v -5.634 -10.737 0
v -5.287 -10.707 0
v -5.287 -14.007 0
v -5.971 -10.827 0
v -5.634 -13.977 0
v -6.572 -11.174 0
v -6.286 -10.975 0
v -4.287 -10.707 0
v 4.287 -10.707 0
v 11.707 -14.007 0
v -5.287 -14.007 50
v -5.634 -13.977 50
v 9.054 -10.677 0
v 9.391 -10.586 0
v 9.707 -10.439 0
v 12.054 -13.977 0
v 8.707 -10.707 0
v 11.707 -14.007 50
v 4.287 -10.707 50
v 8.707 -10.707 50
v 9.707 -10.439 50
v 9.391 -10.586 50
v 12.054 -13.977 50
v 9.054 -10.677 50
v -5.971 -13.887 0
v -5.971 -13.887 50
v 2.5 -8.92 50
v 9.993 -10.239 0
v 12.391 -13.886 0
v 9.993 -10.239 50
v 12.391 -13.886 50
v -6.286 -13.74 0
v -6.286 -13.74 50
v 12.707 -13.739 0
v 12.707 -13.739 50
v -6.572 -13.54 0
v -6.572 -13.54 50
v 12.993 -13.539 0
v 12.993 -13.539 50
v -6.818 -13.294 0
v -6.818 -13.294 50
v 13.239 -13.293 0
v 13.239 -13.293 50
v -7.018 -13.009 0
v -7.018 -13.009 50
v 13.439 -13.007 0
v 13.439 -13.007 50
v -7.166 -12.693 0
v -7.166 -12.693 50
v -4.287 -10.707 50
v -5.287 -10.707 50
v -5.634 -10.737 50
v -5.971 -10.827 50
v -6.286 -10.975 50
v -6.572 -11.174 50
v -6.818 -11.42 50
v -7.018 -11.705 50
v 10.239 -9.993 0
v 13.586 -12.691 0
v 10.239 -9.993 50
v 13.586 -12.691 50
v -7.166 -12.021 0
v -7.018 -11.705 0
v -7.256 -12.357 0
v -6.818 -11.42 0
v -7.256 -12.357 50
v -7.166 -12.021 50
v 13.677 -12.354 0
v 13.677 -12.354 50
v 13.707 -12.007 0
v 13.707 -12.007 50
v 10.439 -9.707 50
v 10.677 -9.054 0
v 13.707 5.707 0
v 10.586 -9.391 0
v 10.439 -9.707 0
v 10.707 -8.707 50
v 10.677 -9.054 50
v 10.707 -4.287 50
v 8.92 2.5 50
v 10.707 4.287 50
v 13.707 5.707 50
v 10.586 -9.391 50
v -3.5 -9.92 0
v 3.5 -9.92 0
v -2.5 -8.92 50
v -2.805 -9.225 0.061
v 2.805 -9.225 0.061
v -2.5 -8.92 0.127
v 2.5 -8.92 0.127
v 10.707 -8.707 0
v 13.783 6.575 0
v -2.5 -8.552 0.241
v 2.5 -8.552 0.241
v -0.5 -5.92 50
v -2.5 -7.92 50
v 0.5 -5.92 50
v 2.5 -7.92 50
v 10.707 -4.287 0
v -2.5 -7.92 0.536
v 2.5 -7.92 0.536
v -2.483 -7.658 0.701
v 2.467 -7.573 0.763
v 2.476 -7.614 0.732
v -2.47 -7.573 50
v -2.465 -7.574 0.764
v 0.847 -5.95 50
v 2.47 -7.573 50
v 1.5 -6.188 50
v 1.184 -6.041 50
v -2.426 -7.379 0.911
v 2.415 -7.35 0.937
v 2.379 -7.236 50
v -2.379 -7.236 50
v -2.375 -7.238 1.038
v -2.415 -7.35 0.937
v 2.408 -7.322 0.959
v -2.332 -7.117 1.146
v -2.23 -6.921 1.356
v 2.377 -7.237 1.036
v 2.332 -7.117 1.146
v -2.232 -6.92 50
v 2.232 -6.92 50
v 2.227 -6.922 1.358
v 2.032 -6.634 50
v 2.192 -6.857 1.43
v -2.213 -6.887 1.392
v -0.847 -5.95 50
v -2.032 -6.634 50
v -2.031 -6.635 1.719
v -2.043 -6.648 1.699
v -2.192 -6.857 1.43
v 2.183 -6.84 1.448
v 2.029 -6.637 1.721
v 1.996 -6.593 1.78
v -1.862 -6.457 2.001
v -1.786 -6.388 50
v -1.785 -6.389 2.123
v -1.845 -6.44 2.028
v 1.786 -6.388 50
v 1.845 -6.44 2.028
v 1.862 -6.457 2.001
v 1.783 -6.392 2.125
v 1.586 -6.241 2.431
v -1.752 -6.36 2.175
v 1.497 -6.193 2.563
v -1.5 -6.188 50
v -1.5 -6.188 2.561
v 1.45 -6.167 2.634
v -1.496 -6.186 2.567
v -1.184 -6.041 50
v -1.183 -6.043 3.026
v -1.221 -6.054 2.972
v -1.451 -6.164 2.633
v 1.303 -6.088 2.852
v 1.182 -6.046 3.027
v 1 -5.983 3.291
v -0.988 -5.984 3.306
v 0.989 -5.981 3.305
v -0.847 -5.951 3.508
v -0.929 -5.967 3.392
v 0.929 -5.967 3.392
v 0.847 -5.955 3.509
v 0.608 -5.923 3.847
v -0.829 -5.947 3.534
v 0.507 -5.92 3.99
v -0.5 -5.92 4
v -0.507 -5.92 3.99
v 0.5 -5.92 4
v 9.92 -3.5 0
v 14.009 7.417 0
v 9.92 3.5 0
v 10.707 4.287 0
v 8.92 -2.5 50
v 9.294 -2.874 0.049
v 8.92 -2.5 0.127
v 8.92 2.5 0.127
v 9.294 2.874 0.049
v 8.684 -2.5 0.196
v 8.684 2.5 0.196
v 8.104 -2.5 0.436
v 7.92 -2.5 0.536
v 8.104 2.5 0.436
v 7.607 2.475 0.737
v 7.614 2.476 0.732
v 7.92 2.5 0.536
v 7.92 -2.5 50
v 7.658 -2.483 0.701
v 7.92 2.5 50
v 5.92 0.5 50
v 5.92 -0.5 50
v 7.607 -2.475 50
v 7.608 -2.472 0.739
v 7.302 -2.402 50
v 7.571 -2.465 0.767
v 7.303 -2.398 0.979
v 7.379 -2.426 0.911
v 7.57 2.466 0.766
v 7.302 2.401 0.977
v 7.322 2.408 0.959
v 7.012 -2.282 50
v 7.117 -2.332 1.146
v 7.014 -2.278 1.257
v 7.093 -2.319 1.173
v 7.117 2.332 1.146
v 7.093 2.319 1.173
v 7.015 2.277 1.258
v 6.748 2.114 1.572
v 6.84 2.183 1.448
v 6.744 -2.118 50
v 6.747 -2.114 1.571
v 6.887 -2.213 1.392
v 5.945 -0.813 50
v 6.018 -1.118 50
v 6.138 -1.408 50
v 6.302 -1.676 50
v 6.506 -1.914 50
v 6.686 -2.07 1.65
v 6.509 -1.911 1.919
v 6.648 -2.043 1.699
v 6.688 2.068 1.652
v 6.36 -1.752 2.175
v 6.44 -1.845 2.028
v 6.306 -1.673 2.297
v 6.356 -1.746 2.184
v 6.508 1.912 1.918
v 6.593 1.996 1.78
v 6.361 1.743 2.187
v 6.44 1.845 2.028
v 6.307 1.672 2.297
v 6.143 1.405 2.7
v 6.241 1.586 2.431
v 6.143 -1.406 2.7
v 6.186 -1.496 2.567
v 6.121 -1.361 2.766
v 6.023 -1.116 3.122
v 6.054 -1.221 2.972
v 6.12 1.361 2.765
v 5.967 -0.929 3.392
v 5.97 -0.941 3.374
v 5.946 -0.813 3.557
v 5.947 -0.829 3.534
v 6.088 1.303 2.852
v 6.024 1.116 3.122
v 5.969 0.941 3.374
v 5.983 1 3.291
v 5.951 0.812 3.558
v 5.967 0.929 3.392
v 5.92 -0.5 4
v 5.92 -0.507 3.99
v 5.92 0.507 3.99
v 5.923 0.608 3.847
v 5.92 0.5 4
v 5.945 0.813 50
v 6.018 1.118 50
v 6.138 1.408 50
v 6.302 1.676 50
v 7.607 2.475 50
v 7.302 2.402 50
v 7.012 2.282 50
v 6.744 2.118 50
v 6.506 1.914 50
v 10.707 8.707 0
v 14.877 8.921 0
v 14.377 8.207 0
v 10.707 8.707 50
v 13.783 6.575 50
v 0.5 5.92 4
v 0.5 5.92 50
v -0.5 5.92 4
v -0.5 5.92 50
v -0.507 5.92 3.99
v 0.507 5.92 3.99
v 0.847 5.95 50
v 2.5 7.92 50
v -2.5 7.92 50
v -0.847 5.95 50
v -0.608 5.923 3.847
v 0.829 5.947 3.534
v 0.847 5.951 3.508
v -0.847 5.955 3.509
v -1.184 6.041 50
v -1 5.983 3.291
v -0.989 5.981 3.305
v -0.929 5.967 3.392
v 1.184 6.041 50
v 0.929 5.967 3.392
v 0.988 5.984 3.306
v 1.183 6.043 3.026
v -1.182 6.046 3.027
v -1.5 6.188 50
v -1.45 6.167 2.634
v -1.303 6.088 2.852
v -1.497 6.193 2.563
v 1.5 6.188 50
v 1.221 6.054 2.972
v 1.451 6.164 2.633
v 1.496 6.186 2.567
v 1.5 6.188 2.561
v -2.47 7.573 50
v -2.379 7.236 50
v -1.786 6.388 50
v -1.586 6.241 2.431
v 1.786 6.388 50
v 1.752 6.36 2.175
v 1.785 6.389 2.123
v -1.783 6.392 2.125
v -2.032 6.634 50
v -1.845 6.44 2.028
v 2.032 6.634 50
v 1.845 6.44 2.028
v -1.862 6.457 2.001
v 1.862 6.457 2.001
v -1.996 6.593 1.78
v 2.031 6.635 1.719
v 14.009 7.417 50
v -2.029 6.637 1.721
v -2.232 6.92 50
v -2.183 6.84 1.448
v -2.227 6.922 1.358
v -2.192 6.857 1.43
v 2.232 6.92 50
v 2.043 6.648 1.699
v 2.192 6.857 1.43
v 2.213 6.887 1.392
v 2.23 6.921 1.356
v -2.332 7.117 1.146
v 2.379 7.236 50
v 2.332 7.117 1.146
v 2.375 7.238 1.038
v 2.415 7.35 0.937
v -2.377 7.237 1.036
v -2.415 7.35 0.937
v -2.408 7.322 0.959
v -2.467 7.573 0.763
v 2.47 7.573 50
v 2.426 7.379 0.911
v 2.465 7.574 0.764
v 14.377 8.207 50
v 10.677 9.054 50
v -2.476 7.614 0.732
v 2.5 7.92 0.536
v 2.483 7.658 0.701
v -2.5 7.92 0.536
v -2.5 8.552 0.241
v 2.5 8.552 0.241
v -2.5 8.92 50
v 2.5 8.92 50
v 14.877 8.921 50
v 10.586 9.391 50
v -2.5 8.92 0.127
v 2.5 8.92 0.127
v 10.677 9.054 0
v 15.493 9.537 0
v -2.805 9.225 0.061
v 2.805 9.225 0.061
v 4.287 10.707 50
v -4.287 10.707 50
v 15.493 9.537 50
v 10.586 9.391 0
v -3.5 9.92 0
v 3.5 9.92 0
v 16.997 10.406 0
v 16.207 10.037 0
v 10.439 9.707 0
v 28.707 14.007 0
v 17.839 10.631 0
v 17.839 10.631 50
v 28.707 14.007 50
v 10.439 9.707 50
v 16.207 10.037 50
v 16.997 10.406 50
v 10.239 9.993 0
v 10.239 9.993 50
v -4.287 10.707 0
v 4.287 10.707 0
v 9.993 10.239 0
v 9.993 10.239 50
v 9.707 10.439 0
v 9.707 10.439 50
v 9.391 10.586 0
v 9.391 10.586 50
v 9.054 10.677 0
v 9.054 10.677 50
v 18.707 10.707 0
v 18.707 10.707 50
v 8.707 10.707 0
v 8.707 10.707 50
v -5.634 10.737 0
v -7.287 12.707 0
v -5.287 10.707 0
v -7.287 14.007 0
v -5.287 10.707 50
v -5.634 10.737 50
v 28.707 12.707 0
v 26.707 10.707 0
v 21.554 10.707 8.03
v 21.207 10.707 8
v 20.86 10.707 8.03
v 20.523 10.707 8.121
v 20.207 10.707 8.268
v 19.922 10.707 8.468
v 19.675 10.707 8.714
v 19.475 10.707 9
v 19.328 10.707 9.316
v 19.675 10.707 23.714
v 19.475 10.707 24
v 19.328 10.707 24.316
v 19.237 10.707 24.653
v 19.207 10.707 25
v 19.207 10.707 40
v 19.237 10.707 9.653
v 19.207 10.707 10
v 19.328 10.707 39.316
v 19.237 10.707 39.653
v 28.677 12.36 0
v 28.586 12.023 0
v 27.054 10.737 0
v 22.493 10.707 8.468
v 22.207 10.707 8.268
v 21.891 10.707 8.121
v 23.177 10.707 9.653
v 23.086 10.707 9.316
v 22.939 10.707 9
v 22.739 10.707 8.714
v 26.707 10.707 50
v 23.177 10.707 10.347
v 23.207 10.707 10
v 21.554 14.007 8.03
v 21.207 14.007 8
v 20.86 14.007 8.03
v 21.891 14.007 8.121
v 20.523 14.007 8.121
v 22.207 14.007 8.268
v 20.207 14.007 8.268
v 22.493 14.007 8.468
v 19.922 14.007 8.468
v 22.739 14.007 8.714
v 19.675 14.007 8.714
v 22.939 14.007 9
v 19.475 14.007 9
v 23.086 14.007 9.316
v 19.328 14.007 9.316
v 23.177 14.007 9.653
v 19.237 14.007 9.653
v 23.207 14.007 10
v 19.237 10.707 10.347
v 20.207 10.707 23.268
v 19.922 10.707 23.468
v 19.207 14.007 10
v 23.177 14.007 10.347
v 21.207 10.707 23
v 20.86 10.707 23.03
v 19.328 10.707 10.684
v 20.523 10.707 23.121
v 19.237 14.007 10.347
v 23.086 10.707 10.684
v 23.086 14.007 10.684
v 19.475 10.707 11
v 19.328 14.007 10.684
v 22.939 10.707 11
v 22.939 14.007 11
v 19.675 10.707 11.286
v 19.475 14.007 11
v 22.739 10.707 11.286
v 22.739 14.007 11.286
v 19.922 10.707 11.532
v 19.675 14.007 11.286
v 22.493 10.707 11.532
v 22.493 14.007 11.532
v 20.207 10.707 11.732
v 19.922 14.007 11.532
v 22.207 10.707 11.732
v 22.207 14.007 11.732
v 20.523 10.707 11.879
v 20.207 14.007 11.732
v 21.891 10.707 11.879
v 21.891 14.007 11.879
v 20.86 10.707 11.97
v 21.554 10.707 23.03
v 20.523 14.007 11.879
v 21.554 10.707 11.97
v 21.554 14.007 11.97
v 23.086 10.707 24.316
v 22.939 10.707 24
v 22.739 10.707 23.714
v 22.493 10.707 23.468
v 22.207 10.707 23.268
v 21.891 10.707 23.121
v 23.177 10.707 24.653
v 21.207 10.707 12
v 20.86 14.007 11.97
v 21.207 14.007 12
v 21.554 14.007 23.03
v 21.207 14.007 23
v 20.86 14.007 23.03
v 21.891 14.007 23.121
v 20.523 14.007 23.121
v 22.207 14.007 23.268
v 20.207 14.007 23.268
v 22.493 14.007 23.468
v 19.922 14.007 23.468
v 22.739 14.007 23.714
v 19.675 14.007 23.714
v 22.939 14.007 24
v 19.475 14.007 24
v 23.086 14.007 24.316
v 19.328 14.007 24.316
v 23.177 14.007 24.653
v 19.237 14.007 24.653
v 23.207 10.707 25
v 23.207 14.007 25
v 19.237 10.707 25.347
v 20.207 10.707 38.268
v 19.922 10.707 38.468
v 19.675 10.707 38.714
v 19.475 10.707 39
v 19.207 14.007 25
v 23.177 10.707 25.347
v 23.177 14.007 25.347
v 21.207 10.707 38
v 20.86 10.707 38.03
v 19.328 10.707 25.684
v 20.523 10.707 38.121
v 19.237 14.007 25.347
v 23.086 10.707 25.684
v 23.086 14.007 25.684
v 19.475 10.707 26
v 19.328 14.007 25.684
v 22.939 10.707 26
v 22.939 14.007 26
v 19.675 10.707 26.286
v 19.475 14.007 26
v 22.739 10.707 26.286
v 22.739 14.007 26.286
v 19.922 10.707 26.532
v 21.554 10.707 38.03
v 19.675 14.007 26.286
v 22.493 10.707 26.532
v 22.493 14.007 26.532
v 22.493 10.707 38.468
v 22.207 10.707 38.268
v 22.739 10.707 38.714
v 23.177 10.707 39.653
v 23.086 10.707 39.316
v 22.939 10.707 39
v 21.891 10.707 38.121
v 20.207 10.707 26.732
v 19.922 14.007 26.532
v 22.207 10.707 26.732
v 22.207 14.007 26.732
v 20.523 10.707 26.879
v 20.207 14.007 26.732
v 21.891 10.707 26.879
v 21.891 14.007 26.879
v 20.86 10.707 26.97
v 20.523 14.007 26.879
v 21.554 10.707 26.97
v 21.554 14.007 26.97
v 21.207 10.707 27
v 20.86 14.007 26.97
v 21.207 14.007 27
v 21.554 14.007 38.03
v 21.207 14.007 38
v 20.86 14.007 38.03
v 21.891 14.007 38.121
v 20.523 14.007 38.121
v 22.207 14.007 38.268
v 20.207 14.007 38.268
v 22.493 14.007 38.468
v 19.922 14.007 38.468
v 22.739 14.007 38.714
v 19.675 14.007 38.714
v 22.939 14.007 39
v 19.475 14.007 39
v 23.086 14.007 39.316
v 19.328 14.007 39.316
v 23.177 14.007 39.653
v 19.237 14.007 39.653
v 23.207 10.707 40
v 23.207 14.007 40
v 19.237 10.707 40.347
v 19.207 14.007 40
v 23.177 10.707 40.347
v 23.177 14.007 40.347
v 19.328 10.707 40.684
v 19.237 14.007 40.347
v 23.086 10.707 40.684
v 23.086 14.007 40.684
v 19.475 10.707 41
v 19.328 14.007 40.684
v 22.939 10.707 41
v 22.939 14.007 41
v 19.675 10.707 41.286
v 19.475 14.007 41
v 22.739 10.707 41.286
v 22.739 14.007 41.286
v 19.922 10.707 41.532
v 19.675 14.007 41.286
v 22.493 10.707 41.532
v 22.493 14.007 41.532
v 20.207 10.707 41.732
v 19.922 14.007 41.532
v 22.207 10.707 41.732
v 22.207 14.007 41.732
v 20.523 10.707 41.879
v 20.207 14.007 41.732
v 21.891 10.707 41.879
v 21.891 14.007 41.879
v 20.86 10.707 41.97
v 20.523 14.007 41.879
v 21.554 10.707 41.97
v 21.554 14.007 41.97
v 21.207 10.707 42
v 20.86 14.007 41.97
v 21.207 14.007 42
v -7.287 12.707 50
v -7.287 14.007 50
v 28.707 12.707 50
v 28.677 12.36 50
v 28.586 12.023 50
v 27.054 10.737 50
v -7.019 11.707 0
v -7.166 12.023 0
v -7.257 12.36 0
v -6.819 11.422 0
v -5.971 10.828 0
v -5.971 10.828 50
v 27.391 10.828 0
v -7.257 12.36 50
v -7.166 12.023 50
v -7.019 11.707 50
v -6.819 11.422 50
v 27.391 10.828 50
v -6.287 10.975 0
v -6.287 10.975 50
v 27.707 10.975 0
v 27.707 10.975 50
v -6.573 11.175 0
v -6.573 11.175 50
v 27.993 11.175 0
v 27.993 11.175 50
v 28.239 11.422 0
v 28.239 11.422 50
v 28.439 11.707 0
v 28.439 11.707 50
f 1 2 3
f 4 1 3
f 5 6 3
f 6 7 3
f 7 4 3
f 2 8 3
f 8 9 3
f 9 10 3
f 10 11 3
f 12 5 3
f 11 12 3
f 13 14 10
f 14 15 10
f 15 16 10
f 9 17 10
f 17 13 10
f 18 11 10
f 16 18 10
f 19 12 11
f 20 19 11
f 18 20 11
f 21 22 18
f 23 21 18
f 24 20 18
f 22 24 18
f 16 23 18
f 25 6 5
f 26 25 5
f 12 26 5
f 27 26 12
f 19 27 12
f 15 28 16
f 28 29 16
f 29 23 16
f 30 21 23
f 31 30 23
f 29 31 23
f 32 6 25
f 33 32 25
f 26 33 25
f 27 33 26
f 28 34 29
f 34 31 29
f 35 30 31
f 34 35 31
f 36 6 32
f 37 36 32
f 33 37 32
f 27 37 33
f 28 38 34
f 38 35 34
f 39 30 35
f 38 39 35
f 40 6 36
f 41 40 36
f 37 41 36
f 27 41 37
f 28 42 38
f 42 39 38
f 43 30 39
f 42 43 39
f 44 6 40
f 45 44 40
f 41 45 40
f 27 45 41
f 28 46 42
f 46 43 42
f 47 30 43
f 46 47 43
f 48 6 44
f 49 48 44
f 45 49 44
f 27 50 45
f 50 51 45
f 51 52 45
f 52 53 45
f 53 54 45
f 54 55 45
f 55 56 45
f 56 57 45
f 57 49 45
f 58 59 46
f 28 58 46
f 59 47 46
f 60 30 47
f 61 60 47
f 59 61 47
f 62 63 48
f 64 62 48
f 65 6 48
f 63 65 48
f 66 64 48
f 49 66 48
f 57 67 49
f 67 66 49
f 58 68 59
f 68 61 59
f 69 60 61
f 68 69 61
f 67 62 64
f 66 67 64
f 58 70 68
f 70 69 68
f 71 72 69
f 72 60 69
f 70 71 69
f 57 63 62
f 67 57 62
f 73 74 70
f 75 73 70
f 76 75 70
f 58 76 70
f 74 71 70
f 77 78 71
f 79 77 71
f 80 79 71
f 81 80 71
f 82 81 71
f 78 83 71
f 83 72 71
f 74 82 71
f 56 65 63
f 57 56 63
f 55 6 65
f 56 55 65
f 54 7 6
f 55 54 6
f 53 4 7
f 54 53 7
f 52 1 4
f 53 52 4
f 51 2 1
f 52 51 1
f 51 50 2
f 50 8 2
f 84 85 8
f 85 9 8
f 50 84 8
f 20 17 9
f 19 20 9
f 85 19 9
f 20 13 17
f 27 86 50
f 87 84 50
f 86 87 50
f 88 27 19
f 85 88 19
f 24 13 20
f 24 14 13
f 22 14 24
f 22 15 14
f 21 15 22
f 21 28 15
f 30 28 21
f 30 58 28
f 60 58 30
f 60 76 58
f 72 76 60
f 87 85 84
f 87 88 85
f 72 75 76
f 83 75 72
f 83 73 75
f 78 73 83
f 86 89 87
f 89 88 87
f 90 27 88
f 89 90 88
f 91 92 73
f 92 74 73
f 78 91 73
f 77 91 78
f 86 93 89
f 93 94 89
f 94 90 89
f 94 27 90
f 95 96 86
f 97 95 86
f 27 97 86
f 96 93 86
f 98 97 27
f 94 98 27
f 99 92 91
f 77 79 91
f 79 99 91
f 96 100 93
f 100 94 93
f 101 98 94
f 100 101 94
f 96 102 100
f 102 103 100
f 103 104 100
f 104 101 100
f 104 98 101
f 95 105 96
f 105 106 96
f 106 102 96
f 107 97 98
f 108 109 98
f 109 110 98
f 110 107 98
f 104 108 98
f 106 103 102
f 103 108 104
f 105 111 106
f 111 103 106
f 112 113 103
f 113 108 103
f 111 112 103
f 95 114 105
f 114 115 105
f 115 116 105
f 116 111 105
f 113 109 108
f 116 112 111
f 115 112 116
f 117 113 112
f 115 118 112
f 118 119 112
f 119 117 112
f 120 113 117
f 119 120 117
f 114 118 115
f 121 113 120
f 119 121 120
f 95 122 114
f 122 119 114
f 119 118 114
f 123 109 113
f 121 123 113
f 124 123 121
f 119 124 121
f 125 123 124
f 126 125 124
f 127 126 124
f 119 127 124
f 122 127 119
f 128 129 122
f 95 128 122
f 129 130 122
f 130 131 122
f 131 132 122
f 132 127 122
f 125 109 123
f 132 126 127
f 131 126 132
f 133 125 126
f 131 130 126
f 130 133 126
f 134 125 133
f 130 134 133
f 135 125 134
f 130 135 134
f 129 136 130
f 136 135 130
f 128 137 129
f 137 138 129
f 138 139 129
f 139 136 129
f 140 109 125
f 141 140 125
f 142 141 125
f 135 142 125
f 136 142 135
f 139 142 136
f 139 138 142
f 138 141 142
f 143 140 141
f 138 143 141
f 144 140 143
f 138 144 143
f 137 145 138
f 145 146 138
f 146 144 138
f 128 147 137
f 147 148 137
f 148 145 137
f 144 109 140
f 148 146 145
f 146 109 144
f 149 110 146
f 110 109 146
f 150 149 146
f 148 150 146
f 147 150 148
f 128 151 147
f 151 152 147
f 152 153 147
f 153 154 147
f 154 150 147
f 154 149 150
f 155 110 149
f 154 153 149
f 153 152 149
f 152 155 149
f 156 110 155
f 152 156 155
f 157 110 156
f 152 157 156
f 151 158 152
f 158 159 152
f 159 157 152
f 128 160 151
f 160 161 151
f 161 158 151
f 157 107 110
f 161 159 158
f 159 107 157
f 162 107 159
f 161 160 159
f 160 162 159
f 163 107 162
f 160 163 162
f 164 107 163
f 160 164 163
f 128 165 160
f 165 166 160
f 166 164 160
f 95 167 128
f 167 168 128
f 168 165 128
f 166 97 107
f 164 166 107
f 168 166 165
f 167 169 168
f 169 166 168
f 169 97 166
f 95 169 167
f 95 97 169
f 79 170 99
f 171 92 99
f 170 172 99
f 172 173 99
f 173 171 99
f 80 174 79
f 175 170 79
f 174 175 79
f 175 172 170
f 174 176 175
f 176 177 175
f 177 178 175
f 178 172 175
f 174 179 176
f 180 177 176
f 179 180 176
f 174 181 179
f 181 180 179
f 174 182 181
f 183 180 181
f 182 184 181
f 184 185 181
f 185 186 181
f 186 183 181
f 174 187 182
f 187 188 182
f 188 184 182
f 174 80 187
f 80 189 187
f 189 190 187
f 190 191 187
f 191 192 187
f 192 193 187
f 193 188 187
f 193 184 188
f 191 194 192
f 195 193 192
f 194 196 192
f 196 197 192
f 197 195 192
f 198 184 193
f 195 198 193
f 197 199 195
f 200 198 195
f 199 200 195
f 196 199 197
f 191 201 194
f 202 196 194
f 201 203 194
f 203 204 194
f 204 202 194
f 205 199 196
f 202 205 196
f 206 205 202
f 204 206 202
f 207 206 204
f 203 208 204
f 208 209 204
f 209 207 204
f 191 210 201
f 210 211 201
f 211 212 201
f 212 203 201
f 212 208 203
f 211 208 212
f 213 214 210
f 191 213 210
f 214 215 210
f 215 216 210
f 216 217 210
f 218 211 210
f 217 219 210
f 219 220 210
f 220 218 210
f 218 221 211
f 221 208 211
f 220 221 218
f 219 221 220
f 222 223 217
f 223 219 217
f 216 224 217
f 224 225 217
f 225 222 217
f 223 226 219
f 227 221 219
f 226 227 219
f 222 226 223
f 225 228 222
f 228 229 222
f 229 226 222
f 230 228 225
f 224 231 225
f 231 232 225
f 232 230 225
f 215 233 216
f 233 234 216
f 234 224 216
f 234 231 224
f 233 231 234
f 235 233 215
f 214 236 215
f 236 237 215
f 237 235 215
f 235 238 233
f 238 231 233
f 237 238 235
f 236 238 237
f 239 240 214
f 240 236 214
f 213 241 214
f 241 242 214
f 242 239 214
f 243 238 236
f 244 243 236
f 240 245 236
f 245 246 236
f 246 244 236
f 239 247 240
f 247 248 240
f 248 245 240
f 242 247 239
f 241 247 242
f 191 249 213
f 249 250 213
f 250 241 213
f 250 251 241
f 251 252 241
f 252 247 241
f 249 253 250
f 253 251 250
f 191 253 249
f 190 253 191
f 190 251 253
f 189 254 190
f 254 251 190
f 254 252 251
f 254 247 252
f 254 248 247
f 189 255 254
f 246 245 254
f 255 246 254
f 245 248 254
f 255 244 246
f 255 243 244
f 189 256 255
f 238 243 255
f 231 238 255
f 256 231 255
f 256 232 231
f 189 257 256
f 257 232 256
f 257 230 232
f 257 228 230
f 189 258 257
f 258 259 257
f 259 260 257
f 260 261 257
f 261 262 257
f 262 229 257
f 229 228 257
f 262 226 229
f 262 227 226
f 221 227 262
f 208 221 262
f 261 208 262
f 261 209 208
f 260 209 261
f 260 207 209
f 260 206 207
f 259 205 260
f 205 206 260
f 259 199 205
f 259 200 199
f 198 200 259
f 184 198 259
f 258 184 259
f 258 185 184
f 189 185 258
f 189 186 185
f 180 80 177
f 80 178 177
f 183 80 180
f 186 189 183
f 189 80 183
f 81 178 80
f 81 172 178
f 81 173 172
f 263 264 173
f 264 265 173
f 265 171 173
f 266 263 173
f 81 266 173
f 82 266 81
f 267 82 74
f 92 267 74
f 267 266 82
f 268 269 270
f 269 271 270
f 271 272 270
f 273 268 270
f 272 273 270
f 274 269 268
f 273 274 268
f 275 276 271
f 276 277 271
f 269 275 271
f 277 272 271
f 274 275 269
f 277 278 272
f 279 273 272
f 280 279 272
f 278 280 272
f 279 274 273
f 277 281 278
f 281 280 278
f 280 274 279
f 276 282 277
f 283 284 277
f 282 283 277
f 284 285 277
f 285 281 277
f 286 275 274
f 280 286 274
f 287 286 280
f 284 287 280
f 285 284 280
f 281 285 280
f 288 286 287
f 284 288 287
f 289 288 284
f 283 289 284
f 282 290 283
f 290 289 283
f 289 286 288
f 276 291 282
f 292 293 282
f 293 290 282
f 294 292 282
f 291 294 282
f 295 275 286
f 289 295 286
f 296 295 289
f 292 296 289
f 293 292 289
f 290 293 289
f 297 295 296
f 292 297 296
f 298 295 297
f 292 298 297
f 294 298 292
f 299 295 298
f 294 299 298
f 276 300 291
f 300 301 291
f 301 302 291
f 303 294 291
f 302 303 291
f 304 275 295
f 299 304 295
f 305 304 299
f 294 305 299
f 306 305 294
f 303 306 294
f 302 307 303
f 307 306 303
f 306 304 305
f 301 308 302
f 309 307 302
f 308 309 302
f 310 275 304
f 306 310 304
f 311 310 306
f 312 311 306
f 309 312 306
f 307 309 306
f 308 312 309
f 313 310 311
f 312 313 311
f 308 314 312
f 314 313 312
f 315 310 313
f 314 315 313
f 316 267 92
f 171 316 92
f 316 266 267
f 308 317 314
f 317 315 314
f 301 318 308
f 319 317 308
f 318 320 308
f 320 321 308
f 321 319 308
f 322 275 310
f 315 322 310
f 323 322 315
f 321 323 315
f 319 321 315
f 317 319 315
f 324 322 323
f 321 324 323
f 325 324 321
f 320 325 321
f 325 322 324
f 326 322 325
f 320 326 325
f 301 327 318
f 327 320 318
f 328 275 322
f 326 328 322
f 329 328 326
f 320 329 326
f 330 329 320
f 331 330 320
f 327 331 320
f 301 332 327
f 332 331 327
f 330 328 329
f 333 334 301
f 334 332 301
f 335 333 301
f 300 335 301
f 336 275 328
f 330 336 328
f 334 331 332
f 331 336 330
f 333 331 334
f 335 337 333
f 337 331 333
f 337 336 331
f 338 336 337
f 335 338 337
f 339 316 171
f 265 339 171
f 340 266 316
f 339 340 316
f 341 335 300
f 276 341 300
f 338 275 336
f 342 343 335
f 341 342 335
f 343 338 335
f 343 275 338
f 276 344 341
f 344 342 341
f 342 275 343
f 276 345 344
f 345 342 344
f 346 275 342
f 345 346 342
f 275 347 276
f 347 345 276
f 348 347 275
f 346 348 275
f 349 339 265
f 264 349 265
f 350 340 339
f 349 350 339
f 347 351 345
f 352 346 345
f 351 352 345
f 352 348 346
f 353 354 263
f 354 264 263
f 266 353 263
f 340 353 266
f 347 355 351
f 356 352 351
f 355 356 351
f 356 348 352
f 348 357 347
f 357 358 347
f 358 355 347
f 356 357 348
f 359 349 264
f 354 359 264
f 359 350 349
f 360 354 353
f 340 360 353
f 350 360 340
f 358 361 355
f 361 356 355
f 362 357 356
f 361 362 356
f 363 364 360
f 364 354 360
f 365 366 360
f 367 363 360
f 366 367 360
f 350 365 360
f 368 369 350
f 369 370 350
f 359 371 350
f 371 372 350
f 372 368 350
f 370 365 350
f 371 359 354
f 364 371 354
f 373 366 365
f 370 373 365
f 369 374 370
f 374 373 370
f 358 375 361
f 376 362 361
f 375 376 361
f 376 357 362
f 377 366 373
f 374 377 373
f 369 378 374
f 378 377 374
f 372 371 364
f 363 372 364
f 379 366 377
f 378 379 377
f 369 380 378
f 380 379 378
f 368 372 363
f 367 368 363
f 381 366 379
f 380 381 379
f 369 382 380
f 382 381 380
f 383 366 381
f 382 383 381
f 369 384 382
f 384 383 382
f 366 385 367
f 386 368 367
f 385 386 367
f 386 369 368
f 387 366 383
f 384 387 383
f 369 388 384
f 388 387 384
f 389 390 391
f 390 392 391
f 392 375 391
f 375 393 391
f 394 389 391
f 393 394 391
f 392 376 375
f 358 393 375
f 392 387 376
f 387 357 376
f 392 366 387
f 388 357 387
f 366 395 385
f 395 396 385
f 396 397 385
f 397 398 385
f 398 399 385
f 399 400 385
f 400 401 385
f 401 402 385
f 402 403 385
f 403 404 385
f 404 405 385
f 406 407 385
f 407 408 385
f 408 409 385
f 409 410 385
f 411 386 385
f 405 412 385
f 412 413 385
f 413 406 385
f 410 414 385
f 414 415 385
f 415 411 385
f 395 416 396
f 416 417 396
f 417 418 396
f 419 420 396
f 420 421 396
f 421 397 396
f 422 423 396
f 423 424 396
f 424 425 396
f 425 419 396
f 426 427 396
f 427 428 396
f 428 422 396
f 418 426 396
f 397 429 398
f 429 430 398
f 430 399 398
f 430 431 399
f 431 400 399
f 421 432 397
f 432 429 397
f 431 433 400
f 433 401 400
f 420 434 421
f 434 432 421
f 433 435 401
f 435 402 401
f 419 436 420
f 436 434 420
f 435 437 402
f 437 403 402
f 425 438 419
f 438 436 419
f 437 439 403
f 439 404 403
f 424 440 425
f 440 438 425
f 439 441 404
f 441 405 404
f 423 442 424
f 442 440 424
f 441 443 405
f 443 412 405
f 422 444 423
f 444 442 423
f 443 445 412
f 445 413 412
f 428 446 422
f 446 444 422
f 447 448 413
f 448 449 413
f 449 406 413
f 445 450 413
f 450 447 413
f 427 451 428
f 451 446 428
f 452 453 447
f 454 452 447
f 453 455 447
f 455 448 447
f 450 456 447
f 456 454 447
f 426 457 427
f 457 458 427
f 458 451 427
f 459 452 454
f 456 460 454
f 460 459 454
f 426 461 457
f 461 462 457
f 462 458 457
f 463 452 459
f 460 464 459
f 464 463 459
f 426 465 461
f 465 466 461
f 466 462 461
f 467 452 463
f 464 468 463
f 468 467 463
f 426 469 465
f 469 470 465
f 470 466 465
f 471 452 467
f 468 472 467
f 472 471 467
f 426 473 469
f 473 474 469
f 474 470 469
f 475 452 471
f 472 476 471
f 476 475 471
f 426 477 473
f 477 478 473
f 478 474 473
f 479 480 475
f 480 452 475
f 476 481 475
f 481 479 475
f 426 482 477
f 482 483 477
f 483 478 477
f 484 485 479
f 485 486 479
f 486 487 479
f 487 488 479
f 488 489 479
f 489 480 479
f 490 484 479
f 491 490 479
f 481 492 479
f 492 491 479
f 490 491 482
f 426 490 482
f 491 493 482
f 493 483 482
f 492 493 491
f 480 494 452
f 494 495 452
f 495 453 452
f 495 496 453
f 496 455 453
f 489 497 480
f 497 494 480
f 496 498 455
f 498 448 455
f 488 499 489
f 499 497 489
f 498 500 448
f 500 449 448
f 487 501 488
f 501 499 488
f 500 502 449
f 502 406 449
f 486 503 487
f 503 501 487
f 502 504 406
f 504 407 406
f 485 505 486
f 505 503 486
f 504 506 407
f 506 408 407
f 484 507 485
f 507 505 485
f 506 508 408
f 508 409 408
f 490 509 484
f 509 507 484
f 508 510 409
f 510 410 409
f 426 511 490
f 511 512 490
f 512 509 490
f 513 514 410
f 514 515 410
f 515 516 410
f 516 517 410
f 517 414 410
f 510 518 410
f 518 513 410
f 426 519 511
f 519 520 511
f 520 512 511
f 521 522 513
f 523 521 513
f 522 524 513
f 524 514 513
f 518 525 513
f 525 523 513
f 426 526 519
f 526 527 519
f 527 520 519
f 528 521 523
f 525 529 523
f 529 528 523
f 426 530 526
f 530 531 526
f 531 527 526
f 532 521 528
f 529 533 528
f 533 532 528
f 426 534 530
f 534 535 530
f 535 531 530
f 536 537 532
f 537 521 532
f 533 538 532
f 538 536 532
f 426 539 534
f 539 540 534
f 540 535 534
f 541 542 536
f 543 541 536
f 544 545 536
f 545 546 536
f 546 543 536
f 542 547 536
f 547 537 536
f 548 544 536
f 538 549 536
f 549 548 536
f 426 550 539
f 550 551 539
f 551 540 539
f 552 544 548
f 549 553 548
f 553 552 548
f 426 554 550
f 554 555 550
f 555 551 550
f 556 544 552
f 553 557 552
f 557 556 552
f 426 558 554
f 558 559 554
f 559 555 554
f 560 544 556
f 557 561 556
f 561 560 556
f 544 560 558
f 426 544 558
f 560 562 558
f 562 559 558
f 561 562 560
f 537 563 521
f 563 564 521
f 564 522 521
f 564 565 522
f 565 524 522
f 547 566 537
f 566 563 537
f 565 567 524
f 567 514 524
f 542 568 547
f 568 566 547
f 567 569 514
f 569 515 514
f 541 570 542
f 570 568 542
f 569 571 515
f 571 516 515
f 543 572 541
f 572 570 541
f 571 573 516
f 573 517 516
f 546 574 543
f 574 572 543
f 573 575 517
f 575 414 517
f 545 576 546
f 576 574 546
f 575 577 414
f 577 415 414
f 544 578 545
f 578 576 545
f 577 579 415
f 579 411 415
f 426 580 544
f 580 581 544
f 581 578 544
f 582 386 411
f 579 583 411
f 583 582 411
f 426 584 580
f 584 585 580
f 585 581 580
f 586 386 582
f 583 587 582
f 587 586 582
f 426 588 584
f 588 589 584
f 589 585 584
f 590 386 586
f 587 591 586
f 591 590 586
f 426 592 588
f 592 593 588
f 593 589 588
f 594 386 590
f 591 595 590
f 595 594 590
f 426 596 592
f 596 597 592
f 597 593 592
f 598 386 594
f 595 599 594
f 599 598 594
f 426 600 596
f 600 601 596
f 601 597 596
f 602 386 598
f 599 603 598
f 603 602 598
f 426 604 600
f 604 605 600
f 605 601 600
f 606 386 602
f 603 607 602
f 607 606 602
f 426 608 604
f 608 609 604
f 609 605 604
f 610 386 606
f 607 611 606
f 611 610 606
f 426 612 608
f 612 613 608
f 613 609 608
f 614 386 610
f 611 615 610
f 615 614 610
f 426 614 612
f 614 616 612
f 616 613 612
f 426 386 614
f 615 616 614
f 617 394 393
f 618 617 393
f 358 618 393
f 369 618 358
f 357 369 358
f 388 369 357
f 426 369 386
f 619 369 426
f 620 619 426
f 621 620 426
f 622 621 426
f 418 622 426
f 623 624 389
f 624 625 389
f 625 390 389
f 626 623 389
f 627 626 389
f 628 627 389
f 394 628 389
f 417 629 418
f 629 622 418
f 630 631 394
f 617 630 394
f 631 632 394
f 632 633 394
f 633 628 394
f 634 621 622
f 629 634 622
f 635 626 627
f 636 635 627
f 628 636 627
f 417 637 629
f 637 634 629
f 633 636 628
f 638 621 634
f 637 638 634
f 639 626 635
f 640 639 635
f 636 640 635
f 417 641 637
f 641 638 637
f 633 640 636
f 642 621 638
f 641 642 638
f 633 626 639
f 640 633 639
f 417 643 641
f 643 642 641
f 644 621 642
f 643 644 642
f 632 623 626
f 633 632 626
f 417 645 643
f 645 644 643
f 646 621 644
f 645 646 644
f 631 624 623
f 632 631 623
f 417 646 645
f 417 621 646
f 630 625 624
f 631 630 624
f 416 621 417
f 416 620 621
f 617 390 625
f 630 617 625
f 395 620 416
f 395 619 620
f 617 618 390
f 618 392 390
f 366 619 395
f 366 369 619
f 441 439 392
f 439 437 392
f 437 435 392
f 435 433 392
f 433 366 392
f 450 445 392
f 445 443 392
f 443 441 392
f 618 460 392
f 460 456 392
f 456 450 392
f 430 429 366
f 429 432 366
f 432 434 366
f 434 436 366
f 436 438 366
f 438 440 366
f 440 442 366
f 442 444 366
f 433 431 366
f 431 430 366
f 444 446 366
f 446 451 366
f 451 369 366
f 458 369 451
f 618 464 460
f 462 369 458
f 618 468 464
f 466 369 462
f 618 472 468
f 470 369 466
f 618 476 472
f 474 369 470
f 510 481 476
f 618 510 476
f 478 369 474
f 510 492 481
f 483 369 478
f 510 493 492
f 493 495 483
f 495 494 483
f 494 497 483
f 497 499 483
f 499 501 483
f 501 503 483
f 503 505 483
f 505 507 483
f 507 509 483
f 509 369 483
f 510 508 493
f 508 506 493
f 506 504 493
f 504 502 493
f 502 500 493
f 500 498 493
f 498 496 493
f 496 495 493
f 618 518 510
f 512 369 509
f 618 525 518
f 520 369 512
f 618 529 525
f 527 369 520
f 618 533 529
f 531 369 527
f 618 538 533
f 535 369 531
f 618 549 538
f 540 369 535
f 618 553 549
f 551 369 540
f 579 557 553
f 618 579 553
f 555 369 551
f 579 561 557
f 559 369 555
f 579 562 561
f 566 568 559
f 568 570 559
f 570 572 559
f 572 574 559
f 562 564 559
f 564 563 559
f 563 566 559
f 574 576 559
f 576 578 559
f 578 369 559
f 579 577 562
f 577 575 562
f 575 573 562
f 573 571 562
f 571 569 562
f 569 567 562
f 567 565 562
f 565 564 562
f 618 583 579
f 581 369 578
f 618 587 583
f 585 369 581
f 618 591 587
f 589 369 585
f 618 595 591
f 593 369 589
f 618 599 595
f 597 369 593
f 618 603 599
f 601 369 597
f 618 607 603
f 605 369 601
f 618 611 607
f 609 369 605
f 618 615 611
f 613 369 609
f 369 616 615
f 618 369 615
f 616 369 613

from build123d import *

# Parameters (mm, degrees)
BOSS_EXTRUDE1_DEPTH     = 50
CUT_EXTRUDE1_DEPTH      = 60.332090981
SKETCH3_W               = 15
SKETCH3_H               = 3.3
CUT_EXTRUDE2_DEPTH      = 60.332090981
CUT_EXTRUDE4_DEPTH      = 60.332090981
CUT_EXTRUDE4_DEPTH_BACK = 10
FILLET1_R               = 2
FILLET2_R               = 5
CUT_EXTRUDE5_DEPTH      = 60.332090981
CUT_EXTRUDE5_DEPTH_BACK = 60.332090981
SKETCH7_R               = 2
FILLET3_R               = 4


with BuildPart() as part:
    # Sketch1 → Boss-Extrude1 (new body)
    with BuildSketch(Plane.XY):
        Polygon((2.5, 7.92), (4.58, 10), (5.287106781, 10.707106781), (10.707106781, 10.707106781), (10.707106781, 5.287106781), (10, 4.58), (7.92, 2.5), (5.92, 2.5), (5.92, -2.5), (7.92, -2.5), (10, -4.58), (10.707106781, -5.287106781), (10.707106781, -7.287106781), (13.707106781, -7.287106781), (13.707106781, 10.707106781), (28.707106781, 10.707106781), (28.707106781, 14.007106781), (13.707106781, 14.007106781), (-7.287106781, 14.007106781), (-7.287106781, 10.707106781), (-5.287106781, 10.707106781), (-4.58, 10), (-2.5, 7.92), (-2.5, 5.92), (2.5, 5.92), align=None)
    boss_extrude1 = extrude(amount=BOSS_EXTRUDE1_DEPTH)

    # Sketch2 → Cut-Extrude1 (cut, through all)
    with BuildSketch(Plane.XY):
        Polygon((0, 0), (18.478629357, 0), (18.478629357, -9.938314006), (0, -9.42769987), align=None)
    extrude(amount=CUT_EXTRUDE1_DEPTH, mode=Mode.SUBTRACT)

    # Mirror1: Boss-Extrude1 across plane
    add(boss_extrude1.mirror(Plane.ZX))

    # Sketch3 → Cut-Extrude2 (cut, through all)
    with BuildSketch(Plane.XY):
        with Locations((21.207106781, -12.357106781)):
            Rectangle(SKETCH3_W, SKETCH3_H)
    extrude(amount=CUT_EXTRUDE2_DEPTH, mode=Mode.SUBTRACT)

    # Sketch6 → Cut-Extrude4 (cut, two sides: drawn at the far end of the back side and taken through both)
    with BuildSketch(Plane.XY.offset(-CUT_EXTRUDE4_DEPTH_BACK)):
        Polygon((-5.287106781, 10.707106781), (-4.287106781, 10.707106781), (-2.5, 8.92), (-2.5, 7.92), align=None)
        Polygon((2.5, 7.92), (2.5, 8.92), (4.287106781, 10.707106781), (5.287106781, 10.707106781), align=None)
        Polygon((7.92, 2.5), (8.92, 2.5), (10.707106781, 4.287106781), (10.707106781, 5.287106781), align=None)
        Polygon((7.92, -2.5), (10.707106781, -5.287106781), (10.707106781, -4.287106781), (8.92, -2.5), align=None)
        Polygon((2.5, -7.92), (5.287106781, -10.707106781), (4.287106781, -10.707106781), (2.5, -8.92), align=None)
        Polygon((-5.287106781, -10.707106781), (-2.5, -7.92), (-2.5, -8.92), (-4.287106781, -10.707106781), align=None)
    extrude(amount=CUT_EXTRUDE4_DEPTH + CUT_EXTRUDE4_DEPTH_BACK, mode=Mode.SUBTRACT)

    # Fillet1
    # the kernel refuses this fillet: 2 mm, written as the material it adds along each edge
    with BuildSketch(Plane(origin=(10.707106781, 10.707106781, 0), x_dir=(0, -1, 0), z_dir=(0, 0, 1)), Plane(origin=(10.707106781, -10.707106781, 0), x_dir=(-1, 0, 0), z_dir=(0, 0, 1))) as fillet1_piece_1:
        with BuildLine():
            CenterArc((FILLET1_R, -FILLET1_R), FILLET1_R, 90, 90)
            Line((0, -FILLET1_R), (0, 0))
            Line((0, 0), (FILLET1_R, 0))
        make_face()
    extrude(amount=50)
    # the kernel refuses this fillet: 2 mm, written as the material it takes off along each edge
    with BuildSketch(Plane(origin=(13.707106781, -14.007106781, -5), x_dir=(-1, 0, 0), z_dir=(0, 0, 1)), Plane(origin=(5.92, 2.5, -5), x_dir=(1, 0, 0), z_dir=(0, 0, 1)), Plane(origin=(2.5, 5.92, -5), x_dir=(-1, 0, 0), z_dir=(0, 0, 1)), Plane(origin=(-2.5, 5.92, -5), x_dir=(0, 1, 0), z_dir=(0, 0, 1)), Plane(origin=(-7.287106781, 10.707106781, -5), x_dir=(0, 1, 0), z_dir=(0, 0, 1)), Plane(origin=(28.707106781, 10.707106781, -5), x_dir=(-1, 0, 0), z_dir=(0, 0, 1)), Plane(origin=(5.92, -2.5, -5), x_dir=(0, 1, 0), z_dir=(0, 0, 1)), Plane(origin=(2.5, -5.92, -5), x_dir=(0, -1, 0), z_dir=(0, 0, 1)), Plane(origin=(-2.5, -5.92, -5), x_dir=(1, 0, 0), z_dir=(0, 0, 1)), Plane(origin=(-7.287106781, -10.707106781, -5), x_dir=(1, 0, 0), z_dir=(0, 0, 1)), Plane(origin=(-7.287106781, -14.007106781, -5), x_dir=(0, 1, 0), z_dir=(0, 0, 1))) as fillet1_2_piece_1:
        with BuildLine():
            CenterArc((FILLET1_R, -FILLET1_R), FILLET1_R, 90, 90)
            Line((0, -FILLET1_R), (0, 0))
            Line((0, 0), (FILLET1_R, 0))
        make_face()
    extrude(amount=60, mode=Mode.SUBTRACT)

    # Fillet2
    fillet2_edges = [part.edges().sort_by_distance(p)[0] for p in [
        (13.707106781, 10.707106781, 25),
    ]]
    fillet(fillet2_edges, radius=FILLET2_R)

    # Sketch7 → Cut-Extrude5 (cut, two sides: drawn at the far end of the back side and taken through both)
    with BuildSketch(Plane(origin=(0, 0, 0), x_dir=(1, 0, 0), z_dir=(0, 1, 0)).offset(-CUT_EXTRUDE5_DEPTH_BACK)):
        with Locations(Location((21.207106781, -40, 0), (0, 0, 270))):
            Circle(SKETCH7_R)
        with Locations(Location((21.207106781, -25, 0), (0, 0, 270))):
            Circle(SKETCH7_R)
        with Locations(Location((21.207106781, -10, 0), (0, 0, 270))):
            Circle(SKETCH7_R)
    extrude(amount=CUT_EXTRUDE5_DEPTH + CUT_EXTRUDE5_DEPTH_BACK, mode=Mode.SUBTRACT)

    # Fillet3
    # the kernel refuses this fillet: 4 mm, written as the material it takes off along each edge
    with BuildSketch(Plane(origin=(-10.5, -5.92, 0), x_dir=(0, -1, 0), z_dir=(1, 0, 0))) as fillet3_piece_1_section:
        with BuildLine():
            CenterArc((FILLET3_R, -FILLET3_R), FILLET3_R, 90, 90)
            Line((0, -FILLET3_R), (0, 0))
            Line((0, 0), (FILLET3_R, 0))
        make_face()
    fillet3_piece_1 = extrude(amount=21, mode=Mode.PRIVATE)
    fillet3_piece_1 = split(fillet3_piece_1, bisect_by=Plane(origin=(2.5, -6.766631822, 0.880672942), z_dir=(-1, 0, 0)), keep=Keep.TOP, mode=Mode.PRIVATE)
    add(fillet3_piece_1, mode=Mode.SUBTRACT)
    with BuildSketch(Plane(origin=(-10.5, -5.92, 0), x_dir=(0, -1, 0), z_dir=(1, 0, 0))) as fillet3_piece_2_section:
        with BuildLine():
            CenterArc((FILLET3_R, -FILLET3_R), FILLET3_R, 90, 90)
            Line((0, -FILLET3_R), (0, 0))
            Line((0, 0), (FILLET3_R, 0))
        make_face()
    fillet3_piece_2 = extrude(amount=21, mode=Mode.PRIVATE)
    fillet3_piece_2 = split(fillet3_piece_2, bisect_by=Plane(origin=(2.799453379, -9.219453379, 0.025268376), z_dir=(-0.7071067811865467, -0.7071067811865485, 0)), keep=Keep.TOP, mode=Mode.PRIVATE)
    add(fillet3_piece_2, mode=Mode.SUBTRACT)
    with BuildSketch(Plane(origin=(5.92, -10.5, 0), x_dir=(1, 0, 0), z_dir=(0, 1, 0))) as fillet3_piece_3_section:
        with BuildLine():
            CenterArc((FILLET3_R, -FILLET3_R), FILLET3_R, 90, 90)
            Line((0, -FILLET3_R), (0, 0))
            Line((0, 0), (FILLET3_R, 0))
        make_face()
    fillet3_piece_3 = extrude(amount=21, mode=Mode.PRIVATE)
    fillet3_piece_3 = split(fillet3_piece_3, bisect_by=Plane(origin=(6.766631909, -2.5, 0.880672877), z_dir=(0, 1, 0)), keep=Keep.TOP, mode=Mode.PRIVATE)
    fillet3_piece_3 = split(fillet3_piece_3, bisect_by=Plane(origin=(6.766631909, 2.5, 0.880672877), z_dir=(0, -1, 0)), keep=Keep.TOP, mode=Mode.PRIVATE)
    add(fillet3_piece_3, mode=Mode.SUBTRACT)
    with BuildSketch(Plane(origin=(5.92, -10.5, 0), x_dir=(1, 0, 0), z_dir=(0, 1, 0))) as fillet3_piece_4_section:
        with BuildLine():
            CenterArc((FILLET3_R, -FILLET3_R), FILLET3_R, 90, 90)
            Line((0, -FILLET3_R), (0, 0))
            Line((0, 0), (FILLET3_R, 0))
        make_face()
    fillet3_piece_4 = extrude(amount=21, mode=Mode.PRIVATE)
    fillet3_piece_4 = split(fillet3_piece_4, bisect_by=Plane(origin=(9.219453379, -2.799453379, 0.025268376), z_dir=(0.7071067811865552, 0.7071067811865398, 0)), keep=Keep.TOP, mode=Mode.PRIVATE)
    fillet3_piece_4 = split(fillet3_piece_4, bisect_by=Plane(origin=(6.519817793, 0.099817793, 0.025268376), z_dir=(0.7071067811865552, -0.7071067811865398, 0)), keep=Keep.TOP, mode=Mode.PRIVATE)
    add(fillet3_piece_4, mode=Mode.SUBTRACT)
    with BuildSketch(Plane(origin=(-10.5, 5.92, 0), x_dir=(0, 1, 0), z_dir=(1, 0, 0))) as fillet3_piece_5_section:
        with BuildLine():
            CenterArc((FILLET3_R, FILLET3_R), FILLET3_R, 180, 90)
            Line((0, FILLET3_R), (0, 0))
            Line((0, 0), (FILLET3_R, 0))
        make_face()
    fillet3_piece_5 = extrude(amount=21, mode=Mode.PRIVATE)
    fillet3_piece_5 = split(fillet3_piece_5, bisect_by=Plane(origin=(2.5, 6.766633177, 0.880671903), z_dir=(-1, 0, 0)), keep=Keep.TOP, mode=Mode.PRIVATE)
    add(fillet3_piece_5, mode=Mode.SUBTRACT)
    with BuildSketch(Plane(origin=(-10.5, 5.92, 0), x_dir=(0, 1, 0), z_dir=(1, 0, 0))) as fillet3_piece_6_section:
        with BuildLine():
            CenterArc((FILLET3_R, FILLET3_R), FILLET3_R, 180, 90)
            Line((0, FILLET3_R), (0, 0))
            Line((0, 0), (FILLET3_R, 0))
        make_face()
    fillet3_piece_6 = extrude(amount=21, mode=Mode.PRIVATE)
    fillet3_piece_6 = split(fillet3_piece_6, bisect_by=Plane(origin=(2.799453379, 9.219453379, 0.025268376), z_dir=(-0.7071067811865467, 0.7071067811865485, 0)), keep=Keep.TOP, mode=Mode.PRIVATE)
    add(fillet3_piece_6, mode=Mode.SUBTRACT)


solid = part.part
